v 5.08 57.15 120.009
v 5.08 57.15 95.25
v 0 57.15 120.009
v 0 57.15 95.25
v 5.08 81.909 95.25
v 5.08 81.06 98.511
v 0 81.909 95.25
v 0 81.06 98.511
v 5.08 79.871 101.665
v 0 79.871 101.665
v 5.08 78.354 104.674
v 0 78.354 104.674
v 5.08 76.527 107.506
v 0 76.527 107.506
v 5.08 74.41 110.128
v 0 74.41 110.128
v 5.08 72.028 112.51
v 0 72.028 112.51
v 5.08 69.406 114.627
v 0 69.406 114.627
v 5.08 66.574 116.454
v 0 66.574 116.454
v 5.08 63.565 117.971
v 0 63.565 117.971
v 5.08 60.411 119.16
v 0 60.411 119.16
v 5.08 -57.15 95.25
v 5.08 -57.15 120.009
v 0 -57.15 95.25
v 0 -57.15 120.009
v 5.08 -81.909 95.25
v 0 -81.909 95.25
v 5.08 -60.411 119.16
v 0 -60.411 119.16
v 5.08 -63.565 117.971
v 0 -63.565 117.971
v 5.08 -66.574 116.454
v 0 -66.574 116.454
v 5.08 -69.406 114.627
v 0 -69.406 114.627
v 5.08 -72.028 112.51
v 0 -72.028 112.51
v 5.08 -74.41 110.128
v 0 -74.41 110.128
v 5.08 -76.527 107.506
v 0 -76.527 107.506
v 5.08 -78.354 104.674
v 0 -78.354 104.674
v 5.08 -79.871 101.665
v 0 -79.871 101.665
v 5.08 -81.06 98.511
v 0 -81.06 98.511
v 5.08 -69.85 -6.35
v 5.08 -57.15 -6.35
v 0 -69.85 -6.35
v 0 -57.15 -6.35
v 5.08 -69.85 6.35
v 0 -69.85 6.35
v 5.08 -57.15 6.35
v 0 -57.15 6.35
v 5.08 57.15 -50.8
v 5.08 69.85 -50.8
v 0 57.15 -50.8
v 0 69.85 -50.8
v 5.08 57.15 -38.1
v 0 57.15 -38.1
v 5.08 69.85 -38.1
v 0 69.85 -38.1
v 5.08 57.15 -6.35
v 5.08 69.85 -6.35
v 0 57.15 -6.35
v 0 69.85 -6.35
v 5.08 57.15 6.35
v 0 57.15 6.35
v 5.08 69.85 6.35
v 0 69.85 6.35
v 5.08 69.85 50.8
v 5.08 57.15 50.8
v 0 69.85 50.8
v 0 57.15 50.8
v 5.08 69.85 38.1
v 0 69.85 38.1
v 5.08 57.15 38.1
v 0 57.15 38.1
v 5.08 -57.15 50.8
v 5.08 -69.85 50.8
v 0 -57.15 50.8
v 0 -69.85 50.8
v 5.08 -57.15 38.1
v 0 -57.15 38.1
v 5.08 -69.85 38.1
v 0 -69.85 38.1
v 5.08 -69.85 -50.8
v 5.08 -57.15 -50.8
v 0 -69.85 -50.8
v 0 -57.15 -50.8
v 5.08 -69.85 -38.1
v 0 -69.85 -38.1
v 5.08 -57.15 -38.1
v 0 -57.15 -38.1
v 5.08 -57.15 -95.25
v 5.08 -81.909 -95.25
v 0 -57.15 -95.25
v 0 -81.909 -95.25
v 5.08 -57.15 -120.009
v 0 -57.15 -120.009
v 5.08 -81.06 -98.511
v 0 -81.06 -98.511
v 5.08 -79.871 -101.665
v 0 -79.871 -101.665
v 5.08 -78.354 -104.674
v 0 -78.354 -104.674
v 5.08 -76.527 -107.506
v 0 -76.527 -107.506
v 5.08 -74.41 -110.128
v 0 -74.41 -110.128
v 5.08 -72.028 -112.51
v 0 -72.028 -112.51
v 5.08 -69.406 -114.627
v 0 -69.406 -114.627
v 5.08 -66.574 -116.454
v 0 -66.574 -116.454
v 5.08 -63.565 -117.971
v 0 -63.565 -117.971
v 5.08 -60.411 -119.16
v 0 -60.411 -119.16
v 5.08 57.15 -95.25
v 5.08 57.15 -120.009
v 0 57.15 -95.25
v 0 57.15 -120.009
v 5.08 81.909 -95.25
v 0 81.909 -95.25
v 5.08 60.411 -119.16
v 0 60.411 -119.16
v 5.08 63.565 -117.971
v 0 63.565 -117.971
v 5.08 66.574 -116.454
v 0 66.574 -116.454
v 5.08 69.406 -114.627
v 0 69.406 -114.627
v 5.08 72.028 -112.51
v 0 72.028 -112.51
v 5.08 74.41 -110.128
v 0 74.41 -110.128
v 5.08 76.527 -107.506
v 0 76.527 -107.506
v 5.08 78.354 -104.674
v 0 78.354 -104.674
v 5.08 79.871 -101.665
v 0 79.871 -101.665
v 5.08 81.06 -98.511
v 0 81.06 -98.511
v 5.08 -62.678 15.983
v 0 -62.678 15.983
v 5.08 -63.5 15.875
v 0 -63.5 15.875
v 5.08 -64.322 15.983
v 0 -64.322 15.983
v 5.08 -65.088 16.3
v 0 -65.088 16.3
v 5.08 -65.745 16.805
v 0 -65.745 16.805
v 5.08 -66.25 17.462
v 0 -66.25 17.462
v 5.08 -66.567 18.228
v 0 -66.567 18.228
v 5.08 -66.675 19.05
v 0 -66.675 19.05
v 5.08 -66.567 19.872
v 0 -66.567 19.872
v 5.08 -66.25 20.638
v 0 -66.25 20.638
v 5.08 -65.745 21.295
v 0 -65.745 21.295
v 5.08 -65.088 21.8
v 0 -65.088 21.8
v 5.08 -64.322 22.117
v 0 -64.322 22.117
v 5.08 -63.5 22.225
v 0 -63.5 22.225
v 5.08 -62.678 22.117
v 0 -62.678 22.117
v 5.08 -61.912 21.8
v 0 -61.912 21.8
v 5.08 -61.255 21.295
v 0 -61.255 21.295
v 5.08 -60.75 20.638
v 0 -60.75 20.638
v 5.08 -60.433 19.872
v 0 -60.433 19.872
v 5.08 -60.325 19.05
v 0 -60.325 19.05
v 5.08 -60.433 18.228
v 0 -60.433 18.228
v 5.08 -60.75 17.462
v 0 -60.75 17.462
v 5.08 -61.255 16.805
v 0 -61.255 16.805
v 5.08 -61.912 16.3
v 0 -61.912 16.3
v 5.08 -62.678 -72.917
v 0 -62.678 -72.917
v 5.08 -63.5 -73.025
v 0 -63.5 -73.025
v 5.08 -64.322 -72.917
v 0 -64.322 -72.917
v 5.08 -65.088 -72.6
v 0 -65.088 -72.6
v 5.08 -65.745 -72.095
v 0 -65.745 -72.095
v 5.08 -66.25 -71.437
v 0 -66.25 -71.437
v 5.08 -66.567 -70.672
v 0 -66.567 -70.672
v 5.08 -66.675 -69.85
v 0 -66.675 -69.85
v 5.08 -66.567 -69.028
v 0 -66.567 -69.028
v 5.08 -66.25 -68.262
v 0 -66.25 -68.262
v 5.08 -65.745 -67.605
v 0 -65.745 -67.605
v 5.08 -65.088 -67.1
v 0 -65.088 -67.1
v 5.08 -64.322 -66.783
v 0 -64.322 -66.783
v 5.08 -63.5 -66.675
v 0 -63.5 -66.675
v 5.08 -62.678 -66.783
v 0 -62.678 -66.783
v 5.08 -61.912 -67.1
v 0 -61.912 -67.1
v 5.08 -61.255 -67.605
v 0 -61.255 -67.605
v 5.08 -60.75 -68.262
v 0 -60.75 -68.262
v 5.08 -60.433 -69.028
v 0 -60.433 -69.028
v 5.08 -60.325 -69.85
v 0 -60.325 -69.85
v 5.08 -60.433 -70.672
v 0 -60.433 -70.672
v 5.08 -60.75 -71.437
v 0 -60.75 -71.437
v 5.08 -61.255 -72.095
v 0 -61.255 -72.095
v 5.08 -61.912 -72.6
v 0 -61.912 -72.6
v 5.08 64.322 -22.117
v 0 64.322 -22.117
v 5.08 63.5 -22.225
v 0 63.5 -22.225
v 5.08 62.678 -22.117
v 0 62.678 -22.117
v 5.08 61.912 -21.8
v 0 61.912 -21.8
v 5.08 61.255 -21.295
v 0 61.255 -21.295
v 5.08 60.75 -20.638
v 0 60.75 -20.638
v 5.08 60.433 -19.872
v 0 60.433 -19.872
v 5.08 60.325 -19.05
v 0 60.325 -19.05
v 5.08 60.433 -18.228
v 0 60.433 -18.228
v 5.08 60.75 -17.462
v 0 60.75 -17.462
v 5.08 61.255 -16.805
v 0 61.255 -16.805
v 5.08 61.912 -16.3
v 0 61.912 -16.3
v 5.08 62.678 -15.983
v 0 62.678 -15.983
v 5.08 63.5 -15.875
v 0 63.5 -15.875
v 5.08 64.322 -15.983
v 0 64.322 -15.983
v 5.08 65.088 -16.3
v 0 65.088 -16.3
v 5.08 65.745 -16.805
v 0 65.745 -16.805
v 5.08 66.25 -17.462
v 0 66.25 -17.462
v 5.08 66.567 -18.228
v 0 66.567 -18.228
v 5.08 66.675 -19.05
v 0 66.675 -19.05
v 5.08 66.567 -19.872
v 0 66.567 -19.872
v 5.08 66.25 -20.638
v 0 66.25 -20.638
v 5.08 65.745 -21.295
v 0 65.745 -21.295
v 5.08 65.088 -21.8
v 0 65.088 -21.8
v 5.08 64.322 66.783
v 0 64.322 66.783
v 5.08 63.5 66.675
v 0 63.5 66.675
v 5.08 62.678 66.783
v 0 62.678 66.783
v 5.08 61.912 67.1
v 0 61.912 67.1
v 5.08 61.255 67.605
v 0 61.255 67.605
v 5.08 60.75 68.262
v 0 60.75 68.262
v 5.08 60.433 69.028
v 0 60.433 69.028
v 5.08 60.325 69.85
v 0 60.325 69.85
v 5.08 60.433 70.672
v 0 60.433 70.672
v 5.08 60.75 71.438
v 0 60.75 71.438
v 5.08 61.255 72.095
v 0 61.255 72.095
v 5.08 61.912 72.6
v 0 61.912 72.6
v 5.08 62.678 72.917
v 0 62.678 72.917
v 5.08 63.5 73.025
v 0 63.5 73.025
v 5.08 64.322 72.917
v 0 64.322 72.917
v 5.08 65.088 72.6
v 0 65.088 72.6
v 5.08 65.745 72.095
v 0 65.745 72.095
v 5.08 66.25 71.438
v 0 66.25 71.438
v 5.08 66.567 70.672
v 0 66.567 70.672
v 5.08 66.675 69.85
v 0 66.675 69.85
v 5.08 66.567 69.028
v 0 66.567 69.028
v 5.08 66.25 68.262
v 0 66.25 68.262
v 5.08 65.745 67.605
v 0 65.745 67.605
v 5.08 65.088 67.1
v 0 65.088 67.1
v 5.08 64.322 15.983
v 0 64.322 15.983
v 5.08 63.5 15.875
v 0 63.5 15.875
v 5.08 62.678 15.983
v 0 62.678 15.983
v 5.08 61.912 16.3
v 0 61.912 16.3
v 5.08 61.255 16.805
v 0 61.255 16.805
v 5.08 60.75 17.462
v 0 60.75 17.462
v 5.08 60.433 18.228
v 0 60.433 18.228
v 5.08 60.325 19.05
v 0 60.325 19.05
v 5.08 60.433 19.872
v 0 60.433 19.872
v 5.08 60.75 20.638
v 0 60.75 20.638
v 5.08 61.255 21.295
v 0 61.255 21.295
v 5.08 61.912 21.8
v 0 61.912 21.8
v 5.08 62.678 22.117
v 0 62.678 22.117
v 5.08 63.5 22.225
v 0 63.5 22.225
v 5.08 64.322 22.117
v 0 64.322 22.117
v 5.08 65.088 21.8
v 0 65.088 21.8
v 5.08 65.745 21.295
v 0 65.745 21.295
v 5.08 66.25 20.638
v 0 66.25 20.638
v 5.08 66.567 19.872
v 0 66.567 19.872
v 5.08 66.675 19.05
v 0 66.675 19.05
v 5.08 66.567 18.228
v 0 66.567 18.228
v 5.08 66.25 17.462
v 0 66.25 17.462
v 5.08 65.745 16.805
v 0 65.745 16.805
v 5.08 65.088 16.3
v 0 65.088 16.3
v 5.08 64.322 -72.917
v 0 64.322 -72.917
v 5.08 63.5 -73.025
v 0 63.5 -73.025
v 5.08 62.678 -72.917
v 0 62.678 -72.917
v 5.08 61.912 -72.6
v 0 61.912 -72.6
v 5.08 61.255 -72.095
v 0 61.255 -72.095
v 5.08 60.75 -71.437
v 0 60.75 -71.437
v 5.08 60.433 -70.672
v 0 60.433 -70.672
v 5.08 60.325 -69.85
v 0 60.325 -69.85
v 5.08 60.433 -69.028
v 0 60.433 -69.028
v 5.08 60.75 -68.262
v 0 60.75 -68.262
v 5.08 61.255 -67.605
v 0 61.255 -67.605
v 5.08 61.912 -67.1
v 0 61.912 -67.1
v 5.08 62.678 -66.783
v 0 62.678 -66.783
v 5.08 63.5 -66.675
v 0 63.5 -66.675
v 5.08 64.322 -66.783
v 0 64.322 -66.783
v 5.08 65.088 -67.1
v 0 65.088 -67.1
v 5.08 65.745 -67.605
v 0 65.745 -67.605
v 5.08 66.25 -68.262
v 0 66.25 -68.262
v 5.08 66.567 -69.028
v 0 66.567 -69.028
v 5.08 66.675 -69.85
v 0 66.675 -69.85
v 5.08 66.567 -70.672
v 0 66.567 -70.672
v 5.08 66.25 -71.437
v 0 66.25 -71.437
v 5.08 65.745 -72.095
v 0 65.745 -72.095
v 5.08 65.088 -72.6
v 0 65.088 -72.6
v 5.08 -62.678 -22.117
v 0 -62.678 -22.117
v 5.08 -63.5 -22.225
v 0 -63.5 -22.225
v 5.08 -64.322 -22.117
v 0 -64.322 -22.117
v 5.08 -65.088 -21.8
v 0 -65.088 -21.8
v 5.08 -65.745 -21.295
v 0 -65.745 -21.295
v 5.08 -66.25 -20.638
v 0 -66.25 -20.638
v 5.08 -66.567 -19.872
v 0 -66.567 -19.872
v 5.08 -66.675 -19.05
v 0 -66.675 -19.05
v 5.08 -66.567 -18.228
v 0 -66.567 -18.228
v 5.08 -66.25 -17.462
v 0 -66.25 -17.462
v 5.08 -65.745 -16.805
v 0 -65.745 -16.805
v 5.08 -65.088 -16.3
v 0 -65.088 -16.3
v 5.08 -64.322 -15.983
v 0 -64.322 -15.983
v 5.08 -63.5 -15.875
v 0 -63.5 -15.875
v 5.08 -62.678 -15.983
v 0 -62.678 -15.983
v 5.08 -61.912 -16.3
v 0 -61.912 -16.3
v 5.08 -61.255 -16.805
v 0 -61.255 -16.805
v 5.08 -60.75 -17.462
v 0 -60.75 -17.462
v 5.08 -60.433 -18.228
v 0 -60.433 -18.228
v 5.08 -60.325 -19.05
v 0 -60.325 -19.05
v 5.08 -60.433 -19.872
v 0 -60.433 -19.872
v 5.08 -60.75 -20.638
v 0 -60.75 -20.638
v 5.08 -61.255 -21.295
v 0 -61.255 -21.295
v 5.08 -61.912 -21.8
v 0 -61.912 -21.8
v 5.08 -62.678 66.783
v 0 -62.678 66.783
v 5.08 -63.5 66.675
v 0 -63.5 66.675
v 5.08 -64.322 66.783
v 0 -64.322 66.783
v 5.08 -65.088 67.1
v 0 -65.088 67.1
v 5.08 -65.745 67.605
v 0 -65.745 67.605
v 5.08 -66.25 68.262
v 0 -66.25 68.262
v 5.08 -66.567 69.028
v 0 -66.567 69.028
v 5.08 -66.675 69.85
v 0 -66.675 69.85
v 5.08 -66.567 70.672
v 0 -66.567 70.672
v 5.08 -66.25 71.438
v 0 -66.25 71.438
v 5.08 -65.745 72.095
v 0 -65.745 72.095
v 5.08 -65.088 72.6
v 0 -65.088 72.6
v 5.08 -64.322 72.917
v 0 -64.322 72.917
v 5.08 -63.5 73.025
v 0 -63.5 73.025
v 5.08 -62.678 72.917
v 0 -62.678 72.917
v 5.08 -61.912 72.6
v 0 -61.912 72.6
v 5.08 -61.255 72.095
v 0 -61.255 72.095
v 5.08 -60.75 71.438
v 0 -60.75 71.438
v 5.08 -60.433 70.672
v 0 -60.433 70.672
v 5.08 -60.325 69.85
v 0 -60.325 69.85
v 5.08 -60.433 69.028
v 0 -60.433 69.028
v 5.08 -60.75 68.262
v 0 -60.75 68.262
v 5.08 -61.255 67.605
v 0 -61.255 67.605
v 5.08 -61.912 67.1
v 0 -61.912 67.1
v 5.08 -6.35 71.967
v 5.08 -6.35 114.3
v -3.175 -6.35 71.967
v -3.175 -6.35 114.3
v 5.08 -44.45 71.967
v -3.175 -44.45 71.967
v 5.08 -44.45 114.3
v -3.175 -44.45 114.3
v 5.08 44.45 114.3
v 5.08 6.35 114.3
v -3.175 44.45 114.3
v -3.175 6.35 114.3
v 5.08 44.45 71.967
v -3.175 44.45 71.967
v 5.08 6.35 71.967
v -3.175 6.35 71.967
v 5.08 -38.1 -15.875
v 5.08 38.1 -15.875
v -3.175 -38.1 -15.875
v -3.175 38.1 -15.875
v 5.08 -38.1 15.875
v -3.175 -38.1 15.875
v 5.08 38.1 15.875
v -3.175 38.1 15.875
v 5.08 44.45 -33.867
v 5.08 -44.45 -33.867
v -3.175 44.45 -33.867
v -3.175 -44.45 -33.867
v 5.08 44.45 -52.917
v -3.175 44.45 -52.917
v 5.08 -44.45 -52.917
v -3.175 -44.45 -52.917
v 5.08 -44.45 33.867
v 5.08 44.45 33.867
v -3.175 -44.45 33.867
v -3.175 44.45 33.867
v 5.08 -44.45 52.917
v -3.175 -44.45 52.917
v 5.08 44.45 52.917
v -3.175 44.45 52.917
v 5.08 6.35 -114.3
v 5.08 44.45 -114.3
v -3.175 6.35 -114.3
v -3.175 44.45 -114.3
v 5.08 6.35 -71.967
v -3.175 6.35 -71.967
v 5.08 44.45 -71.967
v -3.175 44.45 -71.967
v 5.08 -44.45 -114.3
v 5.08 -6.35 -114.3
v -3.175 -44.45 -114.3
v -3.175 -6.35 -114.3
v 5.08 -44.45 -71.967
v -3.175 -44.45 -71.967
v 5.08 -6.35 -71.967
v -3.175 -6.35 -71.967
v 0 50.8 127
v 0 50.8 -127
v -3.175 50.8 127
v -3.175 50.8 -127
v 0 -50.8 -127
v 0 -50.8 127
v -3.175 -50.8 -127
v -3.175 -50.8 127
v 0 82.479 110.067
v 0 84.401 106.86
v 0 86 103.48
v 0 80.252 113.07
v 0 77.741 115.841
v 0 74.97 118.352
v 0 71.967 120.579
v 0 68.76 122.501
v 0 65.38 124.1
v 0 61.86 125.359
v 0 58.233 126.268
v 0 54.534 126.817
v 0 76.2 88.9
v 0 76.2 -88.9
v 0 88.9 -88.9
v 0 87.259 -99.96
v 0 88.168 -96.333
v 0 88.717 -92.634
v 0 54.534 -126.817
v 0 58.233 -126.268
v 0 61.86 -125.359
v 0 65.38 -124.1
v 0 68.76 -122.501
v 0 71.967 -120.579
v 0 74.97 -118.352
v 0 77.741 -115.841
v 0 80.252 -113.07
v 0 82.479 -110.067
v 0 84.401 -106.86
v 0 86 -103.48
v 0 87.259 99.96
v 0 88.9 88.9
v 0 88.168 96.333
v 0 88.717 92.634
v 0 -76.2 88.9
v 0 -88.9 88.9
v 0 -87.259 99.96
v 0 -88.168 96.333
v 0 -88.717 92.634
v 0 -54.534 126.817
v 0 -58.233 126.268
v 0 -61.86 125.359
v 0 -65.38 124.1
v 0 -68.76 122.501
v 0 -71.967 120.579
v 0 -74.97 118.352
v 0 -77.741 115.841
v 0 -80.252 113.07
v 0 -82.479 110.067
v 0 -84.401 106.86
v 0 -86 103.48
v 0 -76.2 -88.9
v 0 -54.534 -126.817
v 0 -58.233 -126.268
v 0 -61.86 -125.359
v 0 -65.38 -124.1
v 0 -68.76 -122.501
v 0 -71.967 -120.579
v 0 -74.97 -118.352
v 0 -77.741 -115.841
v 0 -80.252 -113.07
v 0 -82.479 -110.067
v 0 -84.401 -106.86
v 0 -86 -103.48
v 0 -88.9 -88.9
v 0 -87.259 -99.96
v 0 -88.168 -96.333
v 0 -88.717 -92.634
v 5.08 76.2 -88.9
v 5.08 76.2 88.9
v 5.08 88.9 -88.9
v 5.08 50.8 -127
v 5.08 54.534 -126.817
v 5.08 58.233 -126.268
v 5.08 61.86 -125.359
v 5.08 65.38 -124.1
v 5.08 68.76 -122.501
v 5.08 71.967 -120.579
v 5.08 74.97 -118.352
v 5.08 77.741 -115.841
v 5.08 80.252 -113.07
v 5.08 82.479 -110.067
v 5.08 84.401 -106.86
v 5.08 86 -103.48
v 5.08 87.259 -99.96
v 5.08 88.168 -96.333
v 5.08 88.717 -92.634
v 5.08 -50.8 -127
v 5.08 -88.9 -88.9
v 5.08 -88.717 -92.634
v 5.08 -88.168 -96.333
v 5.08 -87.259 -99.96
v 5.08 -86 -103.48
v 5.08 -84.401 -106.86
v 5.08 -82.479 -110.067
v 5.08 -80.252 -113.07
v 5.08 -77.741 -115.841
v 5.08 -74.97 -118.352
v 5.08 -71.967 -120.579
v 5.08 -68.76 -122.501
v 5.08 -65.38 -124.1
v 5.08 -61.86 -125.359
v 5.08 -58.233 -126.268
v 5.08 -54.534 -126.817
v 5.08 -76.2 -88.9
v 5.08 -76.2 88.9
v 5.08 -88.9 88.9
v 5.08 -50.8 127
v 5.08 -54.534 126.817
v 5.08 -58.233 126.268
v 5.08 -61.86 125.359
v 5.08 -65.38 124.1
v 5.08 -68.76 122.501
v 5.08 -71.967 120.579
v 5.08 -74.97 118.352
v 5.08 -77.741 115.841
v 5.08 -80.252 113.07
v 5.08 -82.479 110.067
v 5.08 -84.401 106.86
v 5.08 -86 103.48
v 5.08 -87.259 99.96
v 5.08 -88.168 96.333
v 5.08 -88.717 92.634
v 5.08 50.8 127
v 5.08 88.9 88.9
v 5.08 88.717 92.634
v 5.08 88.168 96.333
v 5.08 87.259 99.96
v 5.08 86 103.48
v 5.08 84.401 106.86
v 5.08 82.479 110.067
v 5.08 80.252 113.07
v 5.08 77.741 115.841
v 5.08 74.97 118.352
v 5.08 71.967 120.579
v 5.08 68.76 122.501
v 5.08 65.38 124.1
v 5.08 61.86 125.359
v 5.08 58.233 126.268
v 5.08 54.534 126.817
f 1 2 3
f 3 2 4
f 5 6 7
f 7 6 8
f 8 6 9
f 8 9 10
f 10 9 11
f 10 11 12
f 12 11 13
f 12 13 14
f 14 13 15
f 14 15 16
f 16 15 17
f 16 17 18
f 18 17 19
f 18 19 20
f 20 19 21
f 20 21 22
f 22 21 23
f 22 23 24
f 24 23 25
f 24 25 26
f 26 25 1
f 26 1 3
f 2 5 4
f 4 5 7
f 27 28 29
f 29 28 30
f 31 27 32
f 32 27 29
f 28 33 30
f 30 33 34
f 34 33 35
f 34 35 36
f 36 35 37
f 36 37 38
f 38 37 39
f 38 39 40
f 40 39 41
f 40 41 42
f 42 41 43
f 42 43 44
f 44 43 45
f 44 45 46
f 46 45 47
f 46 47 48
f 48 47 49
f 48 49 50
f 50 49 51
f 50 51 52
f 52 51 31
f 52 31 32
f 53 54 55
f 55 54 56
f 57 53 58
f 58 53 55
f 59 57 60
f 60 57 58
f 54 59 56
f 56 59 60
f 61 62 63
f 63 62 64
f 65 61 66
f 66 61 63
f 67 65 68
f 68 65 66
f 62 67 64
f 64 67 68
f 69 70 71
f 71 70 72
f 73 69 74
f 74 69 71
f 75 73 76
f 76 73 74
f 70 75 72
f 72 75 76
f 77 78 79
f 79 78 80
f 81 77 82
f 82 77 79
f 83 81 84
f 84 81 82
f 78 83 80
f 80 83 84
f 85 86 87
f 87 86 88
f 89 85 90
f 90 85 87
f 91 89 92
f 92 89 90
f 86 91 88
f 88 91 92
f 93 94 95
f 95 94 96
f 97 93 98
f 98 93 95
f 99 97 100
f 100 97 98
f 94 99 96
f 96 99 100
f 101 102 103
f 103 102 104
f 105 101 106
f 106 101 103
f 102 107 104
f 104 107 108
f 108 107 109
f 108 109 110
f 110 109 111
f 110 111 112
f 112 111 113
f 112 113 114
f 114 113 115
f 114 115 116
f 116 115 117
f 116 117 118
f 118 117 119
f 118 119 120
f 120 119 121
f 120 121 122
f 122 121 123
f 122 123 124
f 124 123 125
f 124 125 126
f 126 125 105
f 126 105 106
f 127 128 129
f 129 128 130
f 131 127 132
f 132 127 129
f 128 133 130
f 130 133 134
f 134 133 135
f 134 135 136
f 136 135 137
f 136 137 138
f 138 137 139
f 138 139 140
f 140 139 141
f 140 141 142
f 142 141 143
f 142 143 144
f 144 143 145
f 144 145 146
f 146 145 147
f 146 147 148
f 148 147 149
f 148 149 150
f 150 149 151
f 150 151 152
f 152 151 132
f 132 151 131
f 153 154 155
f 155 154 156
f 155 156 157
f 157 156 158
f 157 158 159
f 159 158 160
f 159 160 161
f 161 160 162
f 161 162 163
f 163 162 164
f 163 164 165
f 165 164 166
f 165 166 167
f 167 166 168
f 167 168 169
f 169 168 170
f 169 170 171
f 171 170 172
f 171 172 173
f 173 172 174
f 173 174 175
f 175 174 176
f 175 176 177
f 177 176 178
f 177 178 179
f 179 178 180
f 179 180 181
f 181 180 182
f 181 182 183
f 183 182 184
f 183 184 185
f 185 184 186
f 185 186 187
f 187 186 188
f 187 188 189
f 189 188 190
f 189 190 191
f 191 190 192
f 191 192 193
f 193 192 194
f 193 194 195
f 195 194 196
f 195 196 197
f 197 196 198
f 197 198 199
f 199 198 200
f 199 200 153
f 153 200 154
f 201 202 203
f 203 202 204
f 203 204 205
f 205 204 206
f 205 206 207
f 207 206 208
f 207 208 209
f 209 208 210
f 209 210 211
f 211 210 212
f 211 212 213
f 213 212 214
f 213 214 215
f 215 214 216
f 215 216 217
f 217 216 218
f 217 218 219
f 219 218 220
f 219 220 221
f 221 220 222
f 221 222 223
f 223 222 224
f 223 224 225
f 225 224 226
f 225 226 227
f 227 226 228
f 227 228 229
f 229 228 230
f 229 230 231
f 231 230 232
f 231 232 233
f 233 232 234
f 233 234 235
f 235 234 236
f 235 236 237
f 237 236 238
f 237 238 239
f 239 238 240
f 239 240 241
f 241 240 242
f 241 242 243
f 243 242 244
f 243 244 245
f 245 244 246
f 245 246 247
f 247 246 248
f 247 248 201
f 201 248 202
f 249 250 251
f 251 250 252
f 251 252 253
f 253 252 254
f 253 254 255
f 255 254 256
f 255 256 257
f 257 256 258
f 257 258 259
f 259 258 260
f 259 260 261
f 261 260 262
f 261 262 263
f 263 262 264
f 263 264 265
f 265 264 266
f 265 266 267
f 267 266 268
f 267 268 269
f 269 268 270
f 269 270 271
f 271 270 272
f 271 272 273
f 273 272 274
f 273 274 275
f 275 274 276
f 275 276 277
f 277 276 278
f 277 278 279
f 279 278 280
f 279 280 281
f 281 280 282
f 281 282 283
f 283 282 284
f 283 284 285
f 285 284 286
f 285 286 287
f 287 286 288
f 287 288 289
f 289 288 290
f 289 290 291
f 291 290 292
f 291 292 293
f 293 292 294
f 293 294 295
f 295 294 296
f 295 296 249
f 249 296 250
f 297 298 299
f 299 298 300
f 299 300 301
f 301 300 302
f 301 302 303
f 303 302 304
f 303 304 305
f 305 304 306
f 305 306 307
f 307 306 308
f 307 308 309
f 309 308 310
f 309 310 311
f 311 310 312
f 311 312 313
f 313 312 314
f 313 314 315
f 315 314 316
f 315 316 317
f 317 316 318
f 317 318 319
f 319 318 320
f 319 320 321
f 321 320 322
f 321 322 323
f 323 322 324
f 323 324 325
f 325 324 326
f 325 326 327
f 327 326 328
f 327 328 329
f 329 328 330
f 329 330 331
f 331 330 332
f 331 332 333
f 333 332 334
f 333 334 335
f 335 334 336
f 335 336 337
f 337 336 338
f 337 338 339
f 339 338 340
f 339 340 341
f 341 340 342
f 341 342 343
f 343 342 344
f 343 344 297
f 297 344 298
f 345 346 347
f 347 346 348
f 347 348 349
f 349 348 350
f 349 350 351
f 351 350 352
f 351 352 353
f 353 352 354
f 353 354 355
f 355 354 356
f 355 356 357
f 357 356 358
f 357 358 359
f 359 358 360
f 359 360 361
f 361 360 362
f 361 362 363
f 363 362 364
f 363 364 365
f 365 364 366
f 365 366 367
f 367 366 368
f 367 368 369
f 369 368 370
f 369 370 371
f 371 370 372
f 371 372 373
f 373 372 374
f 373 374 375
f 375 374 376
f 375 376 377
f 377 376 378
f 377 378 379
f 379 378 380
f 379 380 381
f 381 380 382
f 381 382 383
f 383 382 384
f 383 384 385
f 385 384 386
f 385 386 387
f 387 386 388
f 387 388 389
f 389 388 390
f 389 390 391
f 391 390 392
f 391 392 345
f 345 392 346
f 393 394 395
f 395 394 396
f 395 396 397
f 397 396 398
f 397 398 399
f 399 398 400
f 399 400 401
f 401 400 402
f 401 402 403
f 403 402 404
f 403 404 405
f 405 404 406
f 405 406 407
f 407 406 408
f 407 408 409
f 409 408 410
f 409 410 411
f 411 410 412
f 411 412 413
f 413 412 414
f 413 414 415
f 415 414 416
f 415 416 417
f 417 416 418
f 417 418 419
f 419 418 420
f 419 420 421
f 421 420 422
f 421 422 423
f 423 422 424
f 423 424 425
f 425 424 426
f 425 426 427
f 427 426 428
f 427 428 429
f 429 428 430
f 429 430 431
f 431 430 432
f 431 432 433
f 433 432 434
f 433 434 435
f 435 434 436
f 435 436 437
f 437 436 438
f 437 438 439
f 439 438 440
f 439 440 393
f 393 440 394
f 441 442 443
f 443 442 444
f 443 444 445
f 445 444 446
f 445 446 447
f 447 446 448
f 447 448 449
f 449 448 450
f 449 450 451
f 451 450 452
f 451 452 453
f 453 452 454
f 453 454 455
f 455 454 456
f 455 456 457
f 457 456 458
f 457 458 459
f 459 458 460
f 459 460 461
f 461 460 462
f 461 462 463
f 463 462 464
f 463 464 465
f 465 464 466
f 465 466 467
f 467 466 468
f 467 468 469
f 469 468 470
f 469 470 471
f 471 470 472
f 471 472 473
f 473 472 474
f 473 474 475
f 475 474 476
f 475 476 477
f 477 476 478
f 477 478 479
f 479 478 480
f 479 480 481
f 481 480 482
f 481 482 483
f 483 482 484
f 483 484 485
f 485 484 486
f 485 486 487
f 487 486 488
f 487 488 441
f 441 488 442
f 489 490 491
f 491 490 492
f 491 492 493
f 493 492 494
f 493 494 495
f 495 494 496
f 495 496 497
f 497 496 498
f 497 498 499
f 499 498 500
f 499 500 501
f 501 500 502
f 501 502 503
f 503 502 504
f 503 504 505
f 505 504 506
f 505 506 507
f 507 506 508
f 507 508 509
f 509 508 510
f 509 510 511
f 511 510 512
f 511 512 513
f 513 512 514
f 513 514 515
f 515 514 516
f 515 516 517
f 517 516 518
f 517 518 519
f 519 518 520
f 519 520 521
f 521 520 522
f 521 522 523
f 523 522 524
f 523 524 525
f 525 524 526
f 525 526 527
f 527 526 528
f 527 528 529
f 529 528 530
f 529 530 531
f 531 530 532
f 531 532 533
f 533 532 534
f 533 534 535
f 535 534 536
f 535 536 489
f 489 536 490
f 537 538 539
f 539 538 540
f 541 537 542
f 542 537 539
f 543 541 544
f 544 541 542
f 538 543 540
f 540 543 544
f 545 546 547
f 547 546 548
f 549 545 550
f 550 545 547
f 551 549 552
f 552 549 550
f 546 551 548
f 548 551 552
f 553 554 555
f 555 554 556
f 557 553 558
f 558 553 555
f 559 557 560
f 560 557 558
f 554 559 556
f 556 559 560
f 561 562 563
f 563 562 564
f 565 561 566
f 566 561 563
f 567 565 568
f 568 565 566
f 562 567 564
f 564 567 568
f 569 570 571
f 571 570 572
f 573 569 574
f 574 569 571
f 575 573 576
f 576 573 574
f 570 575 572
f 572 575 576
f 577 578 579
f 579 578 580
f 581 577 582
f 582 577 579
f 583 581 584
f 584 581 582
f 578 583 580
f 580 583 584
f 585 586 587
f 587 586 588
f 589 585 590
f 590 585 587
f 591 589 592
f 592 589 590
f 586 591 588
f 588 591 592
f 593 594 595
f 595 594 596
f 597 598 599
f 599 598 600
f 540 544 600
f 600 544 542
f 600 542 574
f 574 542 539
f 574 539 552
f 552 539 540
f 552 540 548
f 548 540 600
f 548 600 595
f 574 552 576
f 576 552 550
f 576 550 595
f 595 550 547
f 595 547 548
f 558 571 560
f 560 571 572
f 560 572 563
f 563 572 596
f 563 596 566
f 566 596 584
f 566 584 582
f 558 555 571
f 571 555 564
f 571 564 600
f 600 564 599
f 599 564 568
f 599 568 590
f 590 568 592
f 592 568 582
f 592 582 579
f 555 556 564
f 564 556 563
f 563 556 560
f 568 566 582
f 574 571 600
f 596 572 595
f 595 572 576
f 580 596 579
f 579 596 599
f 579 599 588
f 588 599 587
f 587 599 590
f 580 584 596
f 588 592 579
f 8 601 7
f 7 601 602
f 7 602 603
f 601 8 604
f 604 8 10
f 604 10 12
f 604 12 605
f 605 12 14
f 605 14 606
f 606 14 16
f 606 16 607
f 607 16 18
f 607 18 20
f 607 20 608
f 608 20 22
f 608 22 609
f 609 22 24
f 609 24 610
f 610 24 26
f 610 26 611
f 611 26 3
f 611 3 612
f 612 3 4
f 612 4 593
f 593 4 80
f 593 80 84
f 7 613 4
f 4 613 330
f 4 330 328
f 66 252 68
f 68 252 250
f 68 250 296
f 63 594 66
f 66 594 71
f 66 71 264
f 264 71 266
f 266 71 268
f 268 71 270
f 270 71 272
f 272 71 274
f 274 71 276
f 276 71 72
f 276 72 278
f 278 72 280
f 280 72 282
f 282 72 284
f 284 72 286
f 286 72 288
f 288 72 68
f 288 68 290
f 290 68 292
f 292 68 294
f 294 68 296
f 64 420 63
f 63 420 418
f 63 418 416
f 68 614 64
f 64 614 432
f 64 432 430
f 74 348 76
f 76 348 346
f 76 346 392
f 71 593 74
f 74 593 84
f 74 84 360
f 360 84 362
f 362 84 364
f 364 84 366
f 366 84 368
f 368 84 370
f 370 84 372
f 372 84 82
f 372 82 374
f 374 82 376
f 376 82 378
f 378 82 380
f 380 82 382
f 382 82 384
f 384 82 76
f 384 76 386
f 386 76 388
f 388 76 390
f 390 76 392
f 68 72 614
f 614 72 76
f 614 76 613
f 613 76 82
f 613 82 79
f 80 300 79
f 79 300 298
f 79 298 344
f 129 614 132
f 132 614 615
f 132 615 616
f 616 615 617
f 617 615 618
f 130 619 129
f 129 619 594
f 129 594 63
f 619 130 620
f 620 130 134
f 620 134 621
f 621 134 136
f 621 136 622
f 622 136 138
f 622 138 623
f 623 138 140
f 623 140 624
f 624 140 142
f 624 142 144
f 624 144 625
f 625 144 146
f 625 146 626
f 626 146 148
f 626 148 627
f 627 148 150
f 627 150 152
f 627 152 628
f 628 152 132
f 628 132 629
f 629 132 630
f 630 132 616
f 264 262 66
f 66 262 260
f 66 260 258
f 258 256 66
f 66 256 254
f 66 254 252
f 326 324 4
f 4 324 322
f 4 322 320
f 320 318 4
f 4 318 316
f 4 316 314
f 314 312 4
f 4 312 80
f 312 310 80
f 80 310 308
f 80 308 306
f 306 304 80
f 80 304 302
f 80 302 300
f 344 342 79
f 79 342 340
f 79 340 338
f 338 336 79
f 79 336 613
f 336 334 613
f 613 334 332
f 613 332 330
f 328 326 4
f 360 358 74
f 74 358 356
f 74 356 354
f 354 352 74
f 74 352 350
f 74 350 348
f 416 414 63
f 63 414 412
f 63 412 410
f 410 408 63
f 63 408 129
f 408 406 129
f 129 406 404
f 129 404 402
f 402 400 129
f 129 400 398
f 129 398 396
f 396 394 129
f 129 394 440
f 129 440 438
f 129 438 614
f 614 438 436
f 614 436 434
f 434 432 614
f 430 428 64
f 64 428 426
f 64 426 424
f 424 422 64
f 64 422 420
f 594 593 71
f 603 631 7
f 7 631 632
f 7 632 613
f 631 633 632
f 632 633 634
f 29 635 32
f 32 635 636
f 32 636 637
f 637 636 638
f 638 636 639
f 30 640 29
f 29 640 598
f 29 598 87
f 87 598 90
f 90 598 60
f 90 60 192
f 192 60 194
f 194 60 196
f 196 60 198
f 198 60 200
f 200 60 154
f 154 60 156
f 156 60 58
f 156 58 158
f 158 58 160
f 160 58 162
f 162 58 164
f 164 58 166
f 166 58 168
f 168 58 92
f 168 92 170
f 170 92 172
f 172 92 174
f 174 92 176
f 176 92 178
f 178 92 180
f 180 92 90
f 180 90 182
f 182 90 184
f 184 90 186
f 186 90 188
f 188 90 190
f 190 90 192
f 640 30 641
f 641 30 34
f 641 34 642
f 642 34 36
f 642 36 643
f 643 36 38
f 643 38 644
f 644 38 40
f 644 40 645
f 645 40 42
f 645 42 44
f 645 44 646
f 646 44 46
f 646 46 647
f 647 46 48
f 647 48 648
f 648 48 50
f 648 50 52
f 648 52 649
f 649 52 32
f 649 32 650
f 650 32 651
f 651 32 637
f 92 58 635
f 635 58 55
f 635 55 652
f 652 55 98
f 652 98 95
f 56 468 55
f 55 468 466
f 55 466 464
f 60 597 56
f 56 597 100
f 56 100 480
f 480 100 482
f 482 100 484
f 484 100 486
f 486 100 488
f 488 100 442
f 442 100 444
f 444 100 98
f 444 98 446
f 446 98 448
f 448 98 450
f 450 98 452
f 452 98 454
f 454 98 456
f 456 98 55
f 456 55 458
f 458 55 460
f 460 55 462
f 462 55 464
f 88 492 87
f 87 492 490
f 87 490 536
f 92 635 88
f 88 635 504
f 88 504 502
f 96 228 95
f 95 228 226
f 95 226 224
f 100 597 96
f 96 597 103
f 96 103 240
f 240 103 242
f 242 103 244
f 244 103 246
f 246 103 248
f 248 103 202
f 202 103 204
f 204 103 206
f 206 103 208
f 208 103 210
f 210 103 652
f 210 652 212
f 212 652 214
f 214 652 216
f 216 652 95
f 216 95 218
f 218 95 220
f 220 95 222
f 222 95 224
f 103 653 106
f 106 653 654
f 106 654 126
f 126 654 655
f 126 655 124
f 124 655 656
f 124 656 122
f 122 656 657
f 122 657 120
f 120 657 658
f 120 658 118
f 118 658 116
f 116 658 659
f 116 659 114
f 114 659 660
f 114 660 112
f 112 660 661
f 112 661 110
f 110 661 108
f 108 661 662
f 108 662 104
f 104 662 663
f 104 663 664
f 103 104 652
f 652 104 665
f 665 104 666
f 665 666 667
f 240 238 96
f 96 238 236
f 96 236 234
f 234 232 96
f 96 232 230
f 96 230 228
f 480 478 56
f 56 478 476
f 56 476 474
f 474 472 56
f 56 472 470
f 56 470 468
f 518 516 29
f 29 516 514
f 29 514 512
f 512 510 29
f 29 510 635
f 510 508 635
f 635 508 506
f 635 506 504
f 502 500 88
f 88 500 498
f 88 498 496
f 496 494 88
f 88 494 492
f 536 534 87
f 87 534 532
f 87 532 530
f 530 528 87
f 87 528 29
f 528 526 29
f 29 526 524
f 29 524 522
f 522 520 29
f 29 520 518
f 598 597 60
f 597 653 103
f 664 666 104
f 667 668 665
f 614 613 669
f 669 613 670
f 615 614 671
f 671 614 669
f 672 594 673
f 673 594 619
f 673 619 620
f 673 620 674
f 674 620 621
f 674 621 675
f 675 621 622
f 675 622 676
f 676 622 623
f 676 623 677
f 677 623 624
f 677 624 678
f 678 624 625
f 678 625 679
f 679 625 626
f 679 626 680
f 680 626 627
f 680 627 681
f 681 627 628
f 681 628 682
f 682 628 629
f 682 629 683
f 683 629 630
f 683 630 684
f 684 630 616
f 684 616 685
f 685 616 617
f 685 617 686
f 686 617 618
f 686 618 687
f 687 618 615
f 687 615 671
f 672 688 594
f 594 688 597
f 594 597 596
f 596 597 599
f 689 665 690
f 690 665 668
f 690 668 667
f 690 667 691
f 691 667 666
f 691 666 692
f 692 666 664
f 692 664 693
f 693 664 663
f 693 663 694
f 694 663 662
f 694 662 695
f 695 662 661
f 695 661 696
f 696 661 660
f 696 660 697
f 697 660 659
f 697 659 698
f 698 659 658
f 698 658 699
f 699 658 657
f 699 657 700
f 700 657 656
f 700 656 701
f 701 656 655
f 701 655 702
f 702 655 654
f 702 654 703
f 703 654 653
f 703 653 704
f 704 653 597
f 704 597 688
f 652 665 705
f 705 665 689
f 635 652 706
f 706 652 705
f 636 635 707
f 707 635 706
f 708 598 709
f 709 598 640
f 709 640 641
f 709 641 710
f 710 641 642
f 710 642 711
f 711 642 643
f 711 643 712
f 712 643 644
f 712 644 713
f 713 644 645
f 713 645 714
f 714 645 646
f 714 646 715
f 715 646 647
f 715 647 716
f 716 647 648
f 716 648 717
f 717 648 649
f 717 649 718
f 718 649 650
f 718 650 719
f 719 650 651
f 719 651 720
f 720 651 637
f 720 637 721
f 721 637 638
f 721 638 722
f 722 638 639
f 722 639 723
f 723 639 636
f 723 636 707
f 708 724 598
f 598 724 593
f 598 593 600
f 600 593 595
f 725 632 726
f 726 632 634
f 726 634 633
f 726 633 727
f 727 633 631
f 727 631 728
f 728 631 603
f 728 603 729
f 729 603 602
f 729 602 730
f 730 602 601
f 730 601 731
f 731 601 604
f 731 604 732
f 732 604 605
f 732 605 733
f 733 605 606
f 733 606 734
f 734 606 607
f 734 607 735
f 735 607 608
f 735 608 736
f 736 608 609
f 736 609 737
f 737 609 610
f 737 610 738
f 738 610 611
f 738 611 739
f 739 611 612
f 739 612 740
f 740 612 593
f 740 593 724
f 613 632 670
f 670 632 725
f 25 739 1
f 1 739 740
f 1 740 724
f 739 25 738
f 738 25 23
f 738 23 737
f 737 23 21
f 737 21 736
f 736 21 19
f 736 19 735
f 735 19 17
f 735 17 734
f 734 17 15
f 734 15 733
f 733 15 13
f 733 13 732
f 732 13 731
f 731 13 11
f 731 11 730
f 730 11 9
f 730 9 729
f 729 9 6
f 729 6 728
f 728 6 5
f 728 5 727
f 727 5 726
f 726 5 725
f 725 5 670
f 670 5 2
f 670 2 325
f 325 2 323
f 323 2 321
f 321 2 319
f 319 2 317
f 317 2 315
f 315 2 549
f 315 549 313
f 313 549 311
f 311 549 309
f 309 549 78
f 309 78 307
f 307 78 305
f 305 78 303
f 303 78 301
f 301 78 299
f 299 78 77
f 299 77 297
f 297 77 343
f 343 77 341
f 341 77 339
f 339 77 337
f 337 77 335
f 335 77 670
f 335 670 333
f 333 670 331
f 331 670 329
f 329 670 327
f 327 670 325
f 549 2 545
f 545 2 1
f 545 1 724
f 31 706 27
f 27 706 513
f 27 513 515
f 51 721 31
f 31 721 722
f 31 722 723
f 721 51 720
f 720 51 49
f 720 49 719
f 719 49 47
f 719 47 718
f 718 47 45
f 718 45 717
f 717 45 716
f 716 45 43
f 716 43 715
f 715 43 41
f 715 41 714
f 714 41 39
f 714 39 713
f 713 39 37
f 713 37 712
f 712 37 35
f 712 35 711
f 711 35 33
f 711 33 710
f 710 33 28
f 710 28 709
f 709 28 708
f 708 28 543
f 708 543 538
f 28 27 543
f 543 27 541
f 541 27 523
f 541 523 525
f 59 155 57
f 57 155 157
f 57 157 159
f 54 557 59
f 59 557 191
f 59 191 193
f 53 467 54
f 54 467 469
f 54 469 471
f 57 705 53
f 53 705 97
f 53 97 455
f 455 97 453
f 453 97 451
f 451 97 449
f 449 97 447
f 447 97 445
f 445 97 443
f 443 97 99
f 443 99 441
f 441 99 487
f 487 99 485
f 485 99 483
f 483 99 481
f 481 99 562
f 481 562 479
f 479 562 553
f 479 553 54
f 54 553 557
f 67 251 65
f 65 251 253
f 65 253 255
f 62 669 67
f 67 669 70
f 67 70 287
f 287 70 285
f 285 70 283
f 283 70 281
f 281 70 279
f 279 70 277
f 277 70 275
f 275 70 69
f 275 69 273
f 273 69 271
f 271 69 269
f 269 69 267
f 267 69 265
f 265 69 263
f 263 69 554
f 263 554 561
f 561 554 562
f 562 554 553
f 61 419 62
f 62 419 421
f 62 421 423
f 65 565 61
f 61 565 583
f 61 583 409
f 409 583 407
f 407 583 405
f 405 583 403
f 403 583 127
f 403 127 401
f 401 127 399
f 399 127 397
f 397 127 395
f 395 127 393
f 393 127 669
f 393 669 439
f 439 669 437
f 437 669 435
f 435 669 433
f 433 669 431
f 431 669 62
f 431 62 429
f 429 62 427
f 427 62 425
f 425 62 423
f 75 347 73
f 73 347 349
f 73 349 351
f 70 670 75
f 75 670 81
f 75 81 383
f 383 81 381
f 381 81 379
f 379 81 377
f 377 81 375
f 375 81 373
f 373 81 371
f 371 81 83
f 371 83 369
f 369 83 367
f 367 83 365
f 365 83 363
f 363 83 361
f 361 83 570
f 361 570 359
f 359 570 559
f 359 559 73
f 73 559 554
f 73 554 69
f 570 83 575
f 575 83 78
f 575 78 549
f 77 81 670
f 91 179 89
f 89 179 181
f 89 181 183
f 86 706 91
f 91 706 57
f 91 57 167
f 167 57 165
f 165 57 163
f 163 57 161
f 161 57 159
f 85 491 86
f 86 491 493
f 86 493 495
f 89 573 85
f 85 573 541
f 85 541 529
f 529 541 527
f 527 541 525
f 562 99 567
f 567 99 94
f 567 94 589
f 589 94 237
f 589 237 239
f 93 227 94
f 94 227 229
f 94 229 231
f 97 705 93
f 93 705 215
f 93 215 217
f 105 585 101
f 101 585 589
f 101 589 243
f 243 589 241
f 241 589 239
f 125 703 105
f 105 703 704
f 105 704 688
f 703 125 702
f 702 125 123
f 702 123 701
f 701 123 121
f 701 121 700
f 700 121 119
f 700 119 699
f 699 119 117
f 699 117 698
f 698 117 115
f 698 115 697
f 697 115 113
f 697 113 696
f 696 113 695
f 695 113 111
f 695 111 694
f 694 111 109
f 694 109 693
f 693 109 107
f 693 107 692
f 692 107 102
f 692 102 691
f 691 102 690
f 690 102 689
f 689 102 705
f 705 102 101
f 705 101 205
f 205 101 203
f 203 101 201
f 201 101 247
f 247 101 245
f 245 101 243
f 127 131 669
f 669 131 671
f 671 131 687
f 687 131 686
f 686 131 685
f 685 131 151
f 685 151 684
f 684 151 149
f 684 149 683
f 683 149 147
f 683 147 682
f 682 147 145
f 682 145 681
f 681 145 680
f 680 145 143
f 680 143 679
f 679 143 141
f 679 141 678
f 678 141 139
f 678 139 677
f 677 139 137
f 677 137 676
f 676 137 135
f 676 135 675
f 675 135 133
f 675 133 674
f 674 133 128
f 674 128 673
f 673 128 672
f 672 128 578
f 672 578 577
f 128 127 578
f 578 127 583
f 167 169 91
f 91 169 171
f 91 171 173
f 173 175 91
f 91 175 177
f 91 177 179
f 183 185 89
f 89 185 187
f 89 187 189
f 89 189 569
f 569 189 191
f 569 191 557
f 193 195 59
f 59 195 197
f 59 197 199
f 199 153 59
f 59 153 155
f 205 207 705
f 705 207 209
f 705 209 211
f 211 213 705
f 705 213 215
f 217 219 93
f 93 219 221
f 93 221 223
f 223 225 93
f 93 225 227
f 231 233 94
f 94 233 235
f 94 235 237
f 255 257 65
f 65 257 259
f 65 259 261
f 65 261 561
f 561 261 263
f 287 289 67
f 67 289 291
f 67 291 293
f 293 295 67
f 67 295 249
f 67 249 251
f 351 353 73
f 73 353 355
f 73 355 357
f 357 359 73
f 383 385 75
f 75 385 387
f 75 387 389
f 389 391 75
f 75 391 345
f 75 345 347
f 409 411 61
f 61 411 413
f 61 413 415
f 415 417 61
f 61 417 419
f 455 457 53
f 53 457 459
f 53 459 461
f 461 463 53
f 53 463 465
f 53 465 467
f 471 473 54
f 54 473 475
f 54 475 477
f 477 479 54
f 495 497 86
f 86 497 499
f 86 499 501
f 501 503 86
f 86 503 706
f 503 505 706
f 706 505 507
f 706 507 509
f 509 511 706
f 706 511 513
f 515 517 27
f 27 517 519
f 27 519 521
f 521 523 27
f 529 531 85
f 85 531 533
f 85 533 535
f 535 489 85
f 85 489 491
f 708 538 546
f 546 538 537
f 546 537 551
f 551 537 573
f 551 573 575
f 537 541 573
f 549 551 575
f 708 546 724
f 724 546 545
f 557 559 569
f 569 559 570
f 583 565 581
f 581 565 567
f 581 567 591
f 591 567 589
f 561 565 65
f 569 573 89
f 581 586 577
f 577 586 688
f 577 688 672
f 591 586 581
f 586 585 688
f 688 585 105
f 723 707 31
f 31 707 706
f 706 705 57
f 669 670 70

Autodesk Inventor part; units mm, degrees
ref_plane "YZ Plane" through (0, 0, 0) normal (1, 0, 0) x (0, 1, 0)
ref_plane "XZ Plane" through (0, 0, 0) normal (0, 1, 0) x (-1, 0, 0)
ref_plane "XY Plane" through (0, 0, 0) normal (0, 0, 1) x (1, 0, 0)
sketch "Sketch1" plane through (0, 0, 0) normal (1, 0, 0) x (0, 1, 0)
  line L0 (-76.2, 88.9) -> (-76.2, 88.9)
  line L1 (-50.8, 127) -> (50.8, 127)
  line L2 (50.8, -127) -> (-50.8, -127)
  line L3 (-76.2, -88.9) -> (-76.2, 88.9)
  arc A0 (88.9, 88.9) -> (50.8, 127) centre (50.8, 88.9) ccw
  line L4 (76.2, 88.9) -> (88.9, 88.9)
  arc A1 (-50.8, 127) -> (-88.9, 88.9) centre (-50.8, 88.9) ccw
  line L5 (-50.8, 88.9) -> (-88.9, 88.9)
  arc A2 (50.8, -127) -> (88.9, -88.9) centre (50.8, -88.9) ccw
  line L6 (76.2, -88.9) -> (88.9, -88.9)
  line L7 (76.2, 88.9) -> (76.2, -88.9)
  arc A3 (-88.9, -88.9) -> (-50.8, -127) centre (-50.8, -88.9) ccw
  line L8 (-76.2, -88.9) -> (-88.9, -88.9)
  point P0 (0, 0)
  point P1 (-76.2, 117.2981)
  point P2 (-76.2, -117.2981)
  dimension "d62" = 254
  dimension "d64" = 76.2
  dimension "d65" = 127
  dimension "d66" = 76.2
  dimension "d72" = 76.2
  dimension "d73" = 25.4
  dimension "d74" = 76.2
  dimension "d76" = 25.4
  dimension "d77" = 76.2
  dimension "d78" = 25.4
extrude "Extrusion1" add sketch "Sketch1" along normal blind 5.08
sketch "Sketch3" plane through (5.08, 0, 0) normal (1, 0, 0) x (0, 0, -1)
  line L0 (88.9, 76.2) -> (-88.9, 76.2) projected
  line L1 (127, -50.8) -> (127, 50.8) projected
  line L2 (-88.9, -76.2) -> (88.9, -76.2) projected
  point P0 (0, 0)
  point P1 (0, -63.5)
  point P2 (0, 63.5)
  point P3 (0, 63.5)
  point P4 (127, 76.2)
  point P5 (127, -76.2)
  point P6 (-127, -76.2)
  dimension "d68" = 12.7
  dimension "d69" = 127
  dimension "d70" = 127
  dimension "d71" = 12.7
sketch "Sketch4" plane through (5.08, 0, 0) normal (1, 0, 0) x (0, 0, -1)
  line L0 (-127, 50.8) -> (-127, -50.8) projected
  line L1 (-127, 50.8) -> (127, 50.8)
  line L2 (127, 50.8) -> (127, -50.8)
  line L3 (127, -50.8) -> (-127, -50.8)
  line L4 (-127, -50.8) -> (-127, 50.8)
  point P0 (0, 0)
  point P1 (-88.9, 88.9)
  dimension "d79" = 101.6
  dimension "d80" = 38.1
extrude "Extrusion2" add sketch "Sketch4" against normal blind 8.255
sketch "Sketch8" plane through (-3.175, 0, 0) normal (-1, 0, 0) x (0, 0, 1)
  line L0 (-114.3, -44.45) -> (-71.9667, -44.45)
  line L1 (-71.9667, -44.45) -> (-71.9667, -6.35)
  line L2 (-71.9667, -6.35) -> (-114.3, -6.35)
  line L3 (-114.3, -6.35) -> (-114.3, -44.45)
  line L4 (-127, -50.8) -> (127, -50.8) projected
  line L5 (127, 50.8) -> (-127, 50.8) projected
  line L6 (-127, 50.8) -> (-127, -50.8) projected
  line L7 (-127, -50.8) -> (-127, 50.8) projected
  line L8 (-127, 0) -> (127, 0)
  line L9 (127, 50.8) -> (127, -50.8) projected
  line L10 (-114.3, 44.45) -> (-71.9667, 44.45)
  line L11 (-71.9667, 44.45) -> (-71.9667, 6.35)
  line L12 (-71.9667, 6.35) -> (-114.3, 6.35)
  line L13 (-114.3, 6.35) -> (-114.3, 44.45)
  line L14 (-15.875, -38.1) -> (15.875, -38.1)
  line L15 (15.875, -38.1) -> (15.875, 38.1)
  line L16 (15.875, 38.1) -> (-15.875, 38.1)
  line L17 (-15.875, 38.1) -> (-15.875, -38.1)
  line L18 (-52.9167, 44.45) -> (-33.8667, 44.45)
  line L19 (-33.8667, 44.45) -> (-33.8667, -44.45)
  line L20 (-33.8667, -44.45) -> (-52.9167, -44.45)
  line L21 (-52.9167, -44.45) -> (-52.9167, 44.45)
  line L22 (-88.9, 76.2) -> (88.9, 76.2) projected
  line L23 (0, 76.2) -> (0, -76.2)
  line L24 (88.9, -76.2) -> (-88.9, -76.2) projected
  line L25 (114.3, -44.45) -> (71.9667, -44.45)
  line L26 (71.9667, -44.45) -> (71.9667, -6.35)
  line L27 (71.9667, -6.35) -> (114.3, -6.35)
  line L28 (114.3, -6.35) -> (114.3, -44.45)
  line L29 (114.3, 6.35) -> (114.3, 44.45)
  line L30 (71.9667, 6.35) -> (114.3, 6.35)
  line L31 (114.3, 44.45) -> (71.9667, 44.45)
  line L32 (71.9667, 44.45) -> (71.9667, 6.35)
  line L33 (52.9167, 44.45) -> (33.8667, 44.45)
  line L34 (33.8667, 44.45) -> (33.8667, -44.45)
  line L35 (33.8667, -44.45) -> (52.9167, -44.45)
  line L36 (52.9167, -44.45) -> (52.9167, 44.45)
  point P0 (0, 0)
  dimension "d95" = 6.35
  dimension "d96" = 101.6
  dimension "d97" = 44.45
  dimension "d98" = 12.7
  dimension "d99" = 42.3333
  dimension "d100" = 12.7
  dimension "d101" = 12.7
  dimension "d102" = 31.75
  dimension "d105" = 19.05
  dimension "d106" = 6.35
  dimension "d107" = 6.35
  dimension "d128" = 111.125
  dimension "d129" = 160.8667
extrude "Extrusion5" cut sketch "Sketch8" against normal blind 25.4 contours L3 L2 L1 L0 | L23 L8 L15 L14 | L14 L17 L8 L23 | L21 L18 L19 L8 | L8 L19 L20 L21 | L23 L16 L15 L8 | L8 L17 L16 L23 | L36 L35 L34 L8 | L8 L34 L33 L36 | L10 L11 L12 L13 | L25 L26 L27 L28 | L30 L32 L31 L29
sketch "Sketch10" plane through (0, 0, 0) normal (-1, 0, 0) x (0, 0, 1)
  line L0 (-88.9, 76.2) -> (88.9, 76.2) projected
  line L1 (0, 76.2) -> (0, -76.2)
  line L2 (88.9, -76.2) -> (-88.9, -76.2) projected
  line L3 (88.9, 76.2) -> (88.9, 88.9) projected
  line L4 (127, 50.8) -> (127, -50.8) projected
  line L5 (127, 0) -> (-127, 0)
  line L6 (-127, 50.8) -> (-127, -50.8) projected
  point P0 (0, 0)
  point P1 (19.05, 63.5)
  point P2 (69.85, 63.5)
  point P3 (-19.05, 63.5)
  point P4 (-69.85, 63.5)
  point P5 (19.05, -63.5)
  point P6 (69.85, -63.5)
  point P7 (-19.05, -63.5)
  point P8 (-69.85, -63.5)
  dimension "d135" = 12.7
  dimension "d136" = 19.05
  dimension "d137" = 19.05
  dimension "d138" = 12.7
hole "Hole5" at (0, 63.5, 69.85) at (0, 63.5, 19.05) at (0, 63.5, -19.05) at (0, 63.5, -69.85) at (0, -63.5, -69.85) at (0, -63.5, -19.05) at (0, -63.5, 19.05) at (0, -63.5, 69.85) direction (1, 0, 0) diameter 6.35 end through all
sketch "Sketch11" plane through (0, 0, 0) normal (-1, 0, 0) x (0, 0, 1)
  line L0 (50.8, 69.85) -> (38.1, 69.85)
  line L1 (38.1, 69.85) -> (38.1, 57.15)
  line L2 (38.1, 57.15) -> (50.8, 57.15)
  line L3 (50.8, 57.15) -> (50.8, 69.85)
  line L4 (-88.9, 76.2) -> (88.9, 76.2) projected
  line L5 (127, 50.8) -> (-127, 50.8) projected
  line L6 (0, 76.2) -> (0, -76.2)
  line L7 (88.9, -76.2) -> (-88.9, -76.2) projected
  line L8 (0, 69.85) -> (6.35, 69.85)
  line L9 (6.35, 69.85) -> (6.35, 57.15)
  line L10 (6.35, 57.15) -> (0, 57.15)
  circle A0 centre (19.05, 63.5) radius 3.175 projected
  circle A1 centre (69.85, 63.5) radius 3.175 projected
  line L11 (-50.8, 69.85) -> (-38.1, 69.85)
  line L12 (-38.1, 69.85) -> (-38.1, 57.15)
  line L13 (-38.1, 57.15) -> (-50.8, 57.15)
  line L14 (-50.8, 57.15) -> (-50.8, 69.85)
  line L15 (0, 69.85) -> (-6.35, 69.85)
  line L16 (-6.35, 69.85) -> (-6.35, 57.15)
  line L17 (-6.35, 57.15) -> (0, 57.15)
  line L18 (120.0085, -57.15) -> (95.25, -57.15)
  line L19 (95.25, -57.15) -> (95.25, -81.9085)
  arc A2 (95.25, -81.9085) -> (120.0085, -57.15) centre (88.9, -50.8) ccw
  arc A3 (88.9, -88.9) -> (127, -50.8) centre (88.9, -50.8) ccw projected
  line L20 (-127, -50.8) -> (127, -50.8) projected
  line L21 (88.9, -88.9) -> (88.9, -76.2) projected
  line L22 (-120.0085, -57.15) -> (-95.25, -57.15)
  line L23 (-95.25, -57.15) -> (-95.25, -81.9085)
  arc A4 (-120.0085, -57.15) -> (-95.25, -81.9085) centre (-88.9, -50.8) ccw
  line L24 (127, 50.8) -> (127, -50.8) projected
  line L25 (127, 0) -> (-127, 0)
  line L26 (-127, -50.8) -> (-127, 50.8) projected
  line L27 (120.0085, 57.15) -> (95.25, 57.15)
  line L28 (95.25, 57.15) -> (95.25, 81.9085)
  arc A5 (120.0085, 57.15) -> (95.25, 81.9085) centre (88.9, 50.8) ccw
  arc A6 (-95.25, 81.9085) -> (-120.0085, 57.15) centre (-88.9, 50.8) ccw
  line L29 (-120.0085, 57.15) -> (-95.25, 57.15)
  line L30 (-95.25, 57.15) -> (-95.25, 81.9085)
  line L31 (50.8, -69.85) -> (38.1, -69.85)
  line L32 (38.1, -69.85) -> (38.1, -57.15)
  line L33 (38.1, -57.15) -> (50.8, -57.15)
  line L34 (50.8, -57.15) -> (50.8, -69.85)
  line L35 (0, -69.85) -> (6.35, -69.85)
  line L36 (6.35, -69.85) -> (6.35, -57.15)
  line L37 (6.35, -57.15) -> (0, -57.15)
  line L38 (-50.8, -57.15) -> (-50.8, -69.85)
  line L39 (-38.1, -57.15) -> (-50.8, -57.15)
  line L40 (-50.8, -69.85) -> (-38.1, -69.85)
  line L41 (-38.1, -69.85) -> (-38.1, -57.15)
  line L42 (-6.35, -69.85) -> (-6.35, -57.15)
  line L43 (-6.35, -57.15) -> (0, -57.15)
  line L44 (0, -69.85) -> (-6.35, -69.85)
  point P0 (0, 0)
  dimension "d146" = 6.35
  dimension "d147" = 6.35
  dimension "d148" = 12.7
  dimension "d149" = 6.35
  dimension "d152" = 19.05
  dimension "d153" = 50.8
  dimension "d154" = 6.35
  dimension "d155" = 6.35
  dimension "d156" = 6.35
  dimension "d159" = 31.75
extrude "Extrusion6" cut sketch "Sketch11" against normal blind 25.4 contours L3 L2 L1 L0 | L17 L16 L15 L6 | L6 L8 L9 L10 | L37 L36 L35 L6 | L6 L44 L42 L43 | L11 L12 L13 L14 | A2 L19 L18 | L22 L23 A4 | L27 L28 A5 | L30 L29 A6 | L31 L32 L33 L34 | L39 L41 L40 L38
properties part number "Frame 2.1" material "ABS Plastic"
